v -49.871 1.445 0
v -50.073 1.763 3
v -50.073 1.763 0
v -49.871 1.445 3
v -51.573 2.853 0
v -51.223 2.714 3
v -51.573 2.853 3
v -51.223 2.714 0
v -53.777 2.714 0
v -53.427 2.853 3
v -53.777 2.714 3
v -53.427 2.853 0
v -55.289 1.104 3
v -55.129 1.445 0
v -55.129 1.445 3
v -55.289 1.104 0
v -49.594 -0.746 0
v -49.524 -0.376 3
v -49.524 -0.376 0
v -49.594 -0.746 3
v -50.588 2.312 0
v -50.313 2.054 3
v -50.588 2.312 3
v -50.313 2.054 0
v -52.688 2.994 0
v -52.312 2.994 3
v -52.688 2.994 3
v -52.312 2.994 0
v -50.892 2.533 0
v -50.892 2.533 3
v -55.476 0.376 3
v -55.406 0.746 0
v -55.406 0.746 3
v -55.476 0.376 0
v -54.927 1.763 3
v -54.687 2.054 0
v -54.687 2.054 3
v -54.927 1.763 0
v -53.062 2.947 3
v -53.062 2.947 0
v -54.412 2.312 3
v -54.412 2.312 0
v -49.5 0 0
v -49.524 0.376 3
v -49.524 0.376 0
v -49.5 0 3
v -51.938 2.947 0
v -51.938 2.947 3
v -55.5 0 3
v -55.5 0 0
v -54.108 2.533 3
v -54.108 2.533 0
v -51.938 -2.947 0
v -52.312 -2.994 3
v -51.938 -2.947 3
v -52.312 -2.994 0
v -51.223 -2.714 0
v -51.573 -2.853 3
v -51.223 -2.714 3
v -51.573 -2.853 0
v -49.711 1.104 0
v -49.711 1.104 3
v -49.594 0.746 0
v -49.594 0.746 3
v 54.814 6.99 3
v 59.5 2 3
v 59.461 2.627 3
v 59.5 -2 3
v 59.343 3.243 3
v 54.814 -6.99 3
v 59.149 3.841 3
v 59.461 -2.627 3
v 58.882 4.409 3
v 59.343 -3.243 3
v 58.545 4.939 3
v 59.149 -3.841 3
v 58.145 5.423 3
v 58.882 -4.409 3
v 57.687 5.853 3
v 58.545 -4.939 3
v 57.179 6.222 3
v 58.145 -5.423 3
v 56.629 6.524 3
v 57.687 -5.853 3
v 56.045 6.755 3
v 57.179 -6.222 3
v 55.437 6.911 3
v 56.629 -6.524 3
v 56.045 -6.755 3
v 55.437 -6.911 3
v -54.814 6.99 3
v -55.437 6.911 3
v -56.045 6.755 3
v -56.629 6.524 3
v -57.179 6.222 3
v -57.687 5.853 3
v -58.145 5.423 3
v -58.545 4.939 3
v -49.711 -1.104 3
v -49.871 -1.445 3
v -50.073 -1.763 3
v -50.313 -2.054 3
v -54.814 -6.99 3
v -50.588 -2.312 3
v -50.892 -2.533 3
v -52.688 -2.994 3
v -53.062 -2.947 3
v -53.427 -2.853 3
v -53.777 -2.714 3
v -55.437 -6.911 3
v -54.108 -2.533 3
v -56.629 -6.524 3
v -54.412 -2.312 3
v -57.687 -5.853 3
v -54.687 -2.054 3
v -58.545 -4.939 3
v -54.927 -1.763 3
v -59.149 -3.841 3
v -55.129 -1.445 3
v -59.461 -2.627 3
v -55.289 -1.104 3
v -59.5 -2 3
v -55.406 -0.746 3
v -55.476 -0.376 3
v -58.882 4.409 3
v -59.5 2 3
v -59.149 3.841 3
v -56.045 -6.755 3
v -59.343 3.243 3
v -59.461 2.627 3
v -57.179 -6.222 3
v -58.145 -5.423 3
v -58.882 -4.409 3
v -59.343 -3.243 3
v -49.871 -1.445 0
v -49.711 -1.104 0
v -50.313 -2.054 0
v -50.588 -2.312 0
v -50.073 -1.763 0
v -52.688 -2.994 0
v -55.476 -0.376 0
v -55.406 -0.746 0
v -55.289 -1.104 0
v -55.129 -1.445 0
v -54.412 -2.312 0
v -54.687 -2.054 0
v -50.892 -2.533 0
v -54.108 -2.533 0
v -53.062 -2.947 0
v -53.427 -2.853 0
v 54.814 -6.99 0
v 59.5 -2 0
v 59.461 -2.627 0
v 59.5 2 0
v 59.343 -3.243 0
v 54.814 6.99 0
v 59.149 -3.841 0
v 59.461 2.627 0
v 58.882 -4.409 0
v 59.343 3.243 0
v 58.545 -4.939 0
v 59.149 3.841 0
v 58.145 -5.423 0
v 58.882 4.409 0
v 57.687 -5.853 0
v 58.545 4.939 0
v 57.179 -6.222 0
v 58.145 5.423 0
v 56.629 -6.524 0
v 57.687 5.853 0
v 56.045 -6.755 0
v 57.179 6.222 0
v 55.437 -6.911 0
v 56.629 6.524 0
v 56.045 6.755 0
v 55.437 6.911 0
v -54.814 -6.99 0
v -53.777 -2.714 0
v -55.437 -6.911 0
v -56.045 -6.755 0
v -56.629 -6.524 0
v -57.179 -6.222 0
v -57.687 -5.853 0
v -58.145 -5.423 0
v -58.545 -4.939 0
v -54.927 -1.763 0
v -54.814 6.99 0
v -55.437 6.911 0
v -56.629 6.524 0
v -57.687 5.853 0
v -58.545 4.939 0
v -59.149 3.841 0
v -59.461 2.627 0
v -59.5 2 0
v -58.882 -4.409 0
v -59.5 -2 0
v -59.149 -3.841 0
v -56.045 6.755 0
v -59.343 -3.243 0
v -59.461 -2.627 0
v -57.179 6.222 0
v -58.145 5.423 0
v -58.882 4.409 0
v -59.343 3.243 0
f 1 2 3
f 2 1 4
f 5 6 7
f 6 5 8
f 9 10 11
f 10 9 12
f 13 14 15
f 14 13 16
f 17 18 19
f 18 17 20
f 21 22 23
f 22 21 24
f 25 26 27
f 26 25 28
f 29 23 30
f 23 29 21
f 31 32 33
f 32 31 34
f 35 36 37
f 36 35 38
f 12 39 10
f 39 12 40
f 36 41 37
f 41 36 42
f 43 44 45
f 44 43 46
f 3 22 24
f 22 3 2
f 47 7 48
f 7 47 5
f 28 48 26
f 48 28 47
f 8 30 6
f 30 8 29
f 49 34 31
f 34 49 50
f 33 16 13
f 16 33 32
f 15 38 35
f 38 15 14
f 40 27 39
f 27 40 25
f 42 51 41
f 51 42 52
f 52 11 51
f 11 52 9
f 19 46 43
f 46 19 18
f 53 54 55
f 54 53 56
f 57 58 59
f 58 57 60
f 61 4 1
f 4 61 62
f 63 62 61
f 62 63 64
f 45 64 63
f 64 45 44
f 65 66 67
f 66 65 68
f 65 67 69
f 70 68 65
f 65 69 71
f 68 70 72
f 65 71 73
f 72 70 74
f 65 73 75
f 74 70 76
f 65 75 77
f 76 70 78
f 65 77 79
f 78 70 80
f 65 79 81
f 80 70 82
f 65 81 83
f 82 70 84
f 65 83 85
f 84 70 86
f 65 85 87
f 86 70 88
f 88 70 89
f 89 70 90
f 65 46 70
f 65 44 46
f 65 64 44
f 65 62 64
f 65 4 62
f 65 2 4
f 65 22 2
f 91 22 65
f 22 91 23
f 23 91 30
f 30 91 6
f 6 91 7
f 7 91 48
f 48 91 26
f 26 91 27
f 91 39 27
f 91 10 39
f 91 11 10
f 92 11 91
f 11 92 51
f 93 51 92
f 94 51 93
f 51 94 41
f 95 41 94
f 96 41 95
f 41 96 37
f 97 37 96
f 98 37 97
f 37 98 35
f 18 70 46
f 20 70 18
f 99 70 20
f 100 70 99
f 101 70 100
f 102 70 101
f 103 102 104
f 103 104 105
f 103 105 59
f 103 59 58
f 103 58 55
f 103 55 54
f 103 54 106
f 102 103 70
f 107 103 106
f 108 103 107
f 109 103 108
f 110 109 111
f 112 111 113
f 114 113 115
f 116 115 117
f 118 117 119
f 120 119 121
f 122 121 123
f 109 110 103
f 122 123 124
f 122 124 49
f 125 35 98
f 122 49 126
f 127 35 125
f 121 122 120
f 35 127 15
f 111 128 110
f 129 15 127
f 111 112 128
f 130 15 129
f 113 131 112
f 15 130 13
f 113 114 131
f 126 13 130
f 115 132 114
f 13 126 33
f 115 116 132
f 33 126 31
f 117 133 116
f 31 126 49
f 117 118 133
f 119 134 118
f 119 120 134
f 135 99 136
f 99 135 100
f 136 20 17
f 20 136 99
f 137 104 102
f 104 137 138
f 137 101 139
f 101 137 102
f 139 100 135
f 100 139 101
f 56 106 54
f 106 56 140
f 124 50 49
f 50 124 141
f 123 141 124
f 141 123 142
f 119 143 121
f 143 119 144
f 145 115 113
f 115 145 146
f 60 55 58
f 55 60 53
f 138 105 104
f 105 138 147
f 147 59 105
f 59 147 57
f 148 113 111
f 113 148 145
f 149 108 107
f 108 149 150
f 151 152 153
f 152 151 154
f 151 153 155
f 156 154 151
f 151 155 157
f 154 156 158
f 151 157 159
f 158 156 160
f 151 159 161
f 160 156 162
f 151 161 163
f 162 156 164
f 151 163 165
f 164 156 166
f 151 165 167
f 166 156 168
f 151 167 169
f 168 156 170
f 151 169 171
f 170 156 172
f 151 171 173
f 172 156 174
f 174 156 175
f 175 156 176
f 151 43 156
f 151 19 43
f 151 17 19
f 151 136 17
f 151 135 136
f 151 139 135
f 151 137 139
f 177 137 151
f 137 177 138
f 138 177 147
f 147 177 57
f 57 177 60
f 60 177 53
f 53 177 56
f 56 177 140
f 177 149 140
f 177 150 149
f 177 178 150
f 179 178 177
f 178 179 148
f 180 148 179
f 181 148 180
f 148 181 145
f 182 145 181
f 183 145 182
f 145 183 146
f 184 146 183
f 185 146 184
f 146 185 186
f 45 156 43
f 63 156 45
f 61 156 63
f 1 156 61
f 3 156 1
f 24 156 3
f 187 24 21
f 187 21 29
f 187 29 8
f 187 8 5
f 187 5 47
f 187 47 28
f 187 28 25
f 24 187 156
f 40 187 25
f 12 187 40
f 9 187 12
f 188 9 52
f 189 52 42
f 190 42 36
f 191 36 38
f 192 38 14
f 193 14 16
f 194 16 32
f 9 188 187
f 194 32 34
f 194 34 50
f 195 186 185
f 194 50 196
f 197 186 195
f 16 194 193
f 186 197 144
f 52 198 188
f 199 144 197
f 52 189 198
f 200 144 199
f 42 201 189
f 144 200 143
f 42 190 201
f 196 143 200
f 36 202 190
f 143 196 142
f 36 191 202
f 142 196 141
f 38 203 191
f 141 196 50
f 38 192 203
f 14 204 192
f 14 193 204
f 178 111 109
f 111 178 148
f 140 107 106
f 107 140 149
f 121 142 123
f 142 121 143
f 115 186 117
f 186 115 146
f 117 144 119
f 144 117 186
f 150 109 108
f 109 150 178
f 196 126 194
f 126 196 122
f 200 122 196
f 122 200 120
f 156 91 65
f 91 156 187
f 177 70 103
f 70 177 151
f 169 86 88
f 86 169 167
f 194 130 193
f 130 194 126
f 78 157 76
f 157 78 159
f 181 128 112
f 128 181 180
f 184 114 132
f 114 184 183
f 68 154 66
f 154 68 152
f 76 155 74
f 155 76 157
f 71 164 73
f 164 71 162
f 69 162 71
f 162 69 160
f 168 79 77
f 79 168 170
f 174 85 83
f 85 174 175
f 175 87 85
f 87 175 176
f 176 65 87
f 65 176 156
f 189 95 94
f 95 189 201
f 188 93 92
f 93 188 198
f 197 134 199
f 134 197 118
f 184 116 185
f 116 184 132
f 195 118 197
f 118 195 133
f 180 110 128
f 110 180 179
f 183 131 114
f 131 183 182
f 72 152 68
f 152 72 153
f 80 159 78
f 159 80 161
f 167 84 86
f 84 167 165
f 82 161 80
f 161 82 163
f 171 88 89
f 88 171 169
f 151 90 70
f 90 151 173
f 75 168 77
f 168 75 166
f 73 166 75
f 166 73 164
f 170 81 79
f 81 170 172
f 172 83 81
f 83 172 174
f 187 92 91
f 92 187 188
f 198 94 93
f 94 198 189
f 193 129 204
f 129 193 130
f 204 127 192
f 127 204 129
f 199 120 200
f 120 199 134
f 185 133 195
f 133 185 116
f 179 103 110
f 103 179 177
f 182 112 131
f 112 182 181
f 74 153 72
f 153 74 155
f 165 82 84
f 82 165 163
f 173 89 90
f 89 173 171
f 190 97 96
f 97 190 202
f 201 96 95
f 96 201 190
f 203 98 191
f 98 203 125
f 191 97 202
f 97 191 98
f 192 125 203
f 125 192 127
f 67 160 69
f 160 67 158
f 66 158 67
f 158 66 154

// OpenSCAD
$fn = 50;


difference() {
	union() {
		hull() {
			translate(v = [-54.5000000000, 2.0000000000, 0]) {
				cylinder(h = 3, r = 5);
			}
			translate(v = [54.5000000000, 2.0000000000, 0]) {
				cylinder(h = 3, r = 5);
			}
			translate(v = [-54.5000000000, -2.0000000000, 0]) {
				cylinder(h = 3, r = 5);
			}
			translate(v = [54.5000000000, -2.0000000000, 0]) {
				cylinder(h = 3, r = 5);
			}
		}
	}
	union() {
		translate(v = [-52.5000000000, 0.0000000000, 0]) {
			cylinder(h = 3, r = 3.0000000000);
		}
		translate(v = [-52.5000000000, 0.0000000000, 0]) {
			cylinder(h = 3, r = 1.5000000000);
		}
		translate(v = [-52.5000000000, 0.0000000000, 0]) {
			cylinder(h = 3, r = 1.5000000000);
		}
		translate(v = [-52.5000000000, 0.0000000000, 0]) {
			cylinder(h = 3, r = 1.5000000000);
		}
	}
}
